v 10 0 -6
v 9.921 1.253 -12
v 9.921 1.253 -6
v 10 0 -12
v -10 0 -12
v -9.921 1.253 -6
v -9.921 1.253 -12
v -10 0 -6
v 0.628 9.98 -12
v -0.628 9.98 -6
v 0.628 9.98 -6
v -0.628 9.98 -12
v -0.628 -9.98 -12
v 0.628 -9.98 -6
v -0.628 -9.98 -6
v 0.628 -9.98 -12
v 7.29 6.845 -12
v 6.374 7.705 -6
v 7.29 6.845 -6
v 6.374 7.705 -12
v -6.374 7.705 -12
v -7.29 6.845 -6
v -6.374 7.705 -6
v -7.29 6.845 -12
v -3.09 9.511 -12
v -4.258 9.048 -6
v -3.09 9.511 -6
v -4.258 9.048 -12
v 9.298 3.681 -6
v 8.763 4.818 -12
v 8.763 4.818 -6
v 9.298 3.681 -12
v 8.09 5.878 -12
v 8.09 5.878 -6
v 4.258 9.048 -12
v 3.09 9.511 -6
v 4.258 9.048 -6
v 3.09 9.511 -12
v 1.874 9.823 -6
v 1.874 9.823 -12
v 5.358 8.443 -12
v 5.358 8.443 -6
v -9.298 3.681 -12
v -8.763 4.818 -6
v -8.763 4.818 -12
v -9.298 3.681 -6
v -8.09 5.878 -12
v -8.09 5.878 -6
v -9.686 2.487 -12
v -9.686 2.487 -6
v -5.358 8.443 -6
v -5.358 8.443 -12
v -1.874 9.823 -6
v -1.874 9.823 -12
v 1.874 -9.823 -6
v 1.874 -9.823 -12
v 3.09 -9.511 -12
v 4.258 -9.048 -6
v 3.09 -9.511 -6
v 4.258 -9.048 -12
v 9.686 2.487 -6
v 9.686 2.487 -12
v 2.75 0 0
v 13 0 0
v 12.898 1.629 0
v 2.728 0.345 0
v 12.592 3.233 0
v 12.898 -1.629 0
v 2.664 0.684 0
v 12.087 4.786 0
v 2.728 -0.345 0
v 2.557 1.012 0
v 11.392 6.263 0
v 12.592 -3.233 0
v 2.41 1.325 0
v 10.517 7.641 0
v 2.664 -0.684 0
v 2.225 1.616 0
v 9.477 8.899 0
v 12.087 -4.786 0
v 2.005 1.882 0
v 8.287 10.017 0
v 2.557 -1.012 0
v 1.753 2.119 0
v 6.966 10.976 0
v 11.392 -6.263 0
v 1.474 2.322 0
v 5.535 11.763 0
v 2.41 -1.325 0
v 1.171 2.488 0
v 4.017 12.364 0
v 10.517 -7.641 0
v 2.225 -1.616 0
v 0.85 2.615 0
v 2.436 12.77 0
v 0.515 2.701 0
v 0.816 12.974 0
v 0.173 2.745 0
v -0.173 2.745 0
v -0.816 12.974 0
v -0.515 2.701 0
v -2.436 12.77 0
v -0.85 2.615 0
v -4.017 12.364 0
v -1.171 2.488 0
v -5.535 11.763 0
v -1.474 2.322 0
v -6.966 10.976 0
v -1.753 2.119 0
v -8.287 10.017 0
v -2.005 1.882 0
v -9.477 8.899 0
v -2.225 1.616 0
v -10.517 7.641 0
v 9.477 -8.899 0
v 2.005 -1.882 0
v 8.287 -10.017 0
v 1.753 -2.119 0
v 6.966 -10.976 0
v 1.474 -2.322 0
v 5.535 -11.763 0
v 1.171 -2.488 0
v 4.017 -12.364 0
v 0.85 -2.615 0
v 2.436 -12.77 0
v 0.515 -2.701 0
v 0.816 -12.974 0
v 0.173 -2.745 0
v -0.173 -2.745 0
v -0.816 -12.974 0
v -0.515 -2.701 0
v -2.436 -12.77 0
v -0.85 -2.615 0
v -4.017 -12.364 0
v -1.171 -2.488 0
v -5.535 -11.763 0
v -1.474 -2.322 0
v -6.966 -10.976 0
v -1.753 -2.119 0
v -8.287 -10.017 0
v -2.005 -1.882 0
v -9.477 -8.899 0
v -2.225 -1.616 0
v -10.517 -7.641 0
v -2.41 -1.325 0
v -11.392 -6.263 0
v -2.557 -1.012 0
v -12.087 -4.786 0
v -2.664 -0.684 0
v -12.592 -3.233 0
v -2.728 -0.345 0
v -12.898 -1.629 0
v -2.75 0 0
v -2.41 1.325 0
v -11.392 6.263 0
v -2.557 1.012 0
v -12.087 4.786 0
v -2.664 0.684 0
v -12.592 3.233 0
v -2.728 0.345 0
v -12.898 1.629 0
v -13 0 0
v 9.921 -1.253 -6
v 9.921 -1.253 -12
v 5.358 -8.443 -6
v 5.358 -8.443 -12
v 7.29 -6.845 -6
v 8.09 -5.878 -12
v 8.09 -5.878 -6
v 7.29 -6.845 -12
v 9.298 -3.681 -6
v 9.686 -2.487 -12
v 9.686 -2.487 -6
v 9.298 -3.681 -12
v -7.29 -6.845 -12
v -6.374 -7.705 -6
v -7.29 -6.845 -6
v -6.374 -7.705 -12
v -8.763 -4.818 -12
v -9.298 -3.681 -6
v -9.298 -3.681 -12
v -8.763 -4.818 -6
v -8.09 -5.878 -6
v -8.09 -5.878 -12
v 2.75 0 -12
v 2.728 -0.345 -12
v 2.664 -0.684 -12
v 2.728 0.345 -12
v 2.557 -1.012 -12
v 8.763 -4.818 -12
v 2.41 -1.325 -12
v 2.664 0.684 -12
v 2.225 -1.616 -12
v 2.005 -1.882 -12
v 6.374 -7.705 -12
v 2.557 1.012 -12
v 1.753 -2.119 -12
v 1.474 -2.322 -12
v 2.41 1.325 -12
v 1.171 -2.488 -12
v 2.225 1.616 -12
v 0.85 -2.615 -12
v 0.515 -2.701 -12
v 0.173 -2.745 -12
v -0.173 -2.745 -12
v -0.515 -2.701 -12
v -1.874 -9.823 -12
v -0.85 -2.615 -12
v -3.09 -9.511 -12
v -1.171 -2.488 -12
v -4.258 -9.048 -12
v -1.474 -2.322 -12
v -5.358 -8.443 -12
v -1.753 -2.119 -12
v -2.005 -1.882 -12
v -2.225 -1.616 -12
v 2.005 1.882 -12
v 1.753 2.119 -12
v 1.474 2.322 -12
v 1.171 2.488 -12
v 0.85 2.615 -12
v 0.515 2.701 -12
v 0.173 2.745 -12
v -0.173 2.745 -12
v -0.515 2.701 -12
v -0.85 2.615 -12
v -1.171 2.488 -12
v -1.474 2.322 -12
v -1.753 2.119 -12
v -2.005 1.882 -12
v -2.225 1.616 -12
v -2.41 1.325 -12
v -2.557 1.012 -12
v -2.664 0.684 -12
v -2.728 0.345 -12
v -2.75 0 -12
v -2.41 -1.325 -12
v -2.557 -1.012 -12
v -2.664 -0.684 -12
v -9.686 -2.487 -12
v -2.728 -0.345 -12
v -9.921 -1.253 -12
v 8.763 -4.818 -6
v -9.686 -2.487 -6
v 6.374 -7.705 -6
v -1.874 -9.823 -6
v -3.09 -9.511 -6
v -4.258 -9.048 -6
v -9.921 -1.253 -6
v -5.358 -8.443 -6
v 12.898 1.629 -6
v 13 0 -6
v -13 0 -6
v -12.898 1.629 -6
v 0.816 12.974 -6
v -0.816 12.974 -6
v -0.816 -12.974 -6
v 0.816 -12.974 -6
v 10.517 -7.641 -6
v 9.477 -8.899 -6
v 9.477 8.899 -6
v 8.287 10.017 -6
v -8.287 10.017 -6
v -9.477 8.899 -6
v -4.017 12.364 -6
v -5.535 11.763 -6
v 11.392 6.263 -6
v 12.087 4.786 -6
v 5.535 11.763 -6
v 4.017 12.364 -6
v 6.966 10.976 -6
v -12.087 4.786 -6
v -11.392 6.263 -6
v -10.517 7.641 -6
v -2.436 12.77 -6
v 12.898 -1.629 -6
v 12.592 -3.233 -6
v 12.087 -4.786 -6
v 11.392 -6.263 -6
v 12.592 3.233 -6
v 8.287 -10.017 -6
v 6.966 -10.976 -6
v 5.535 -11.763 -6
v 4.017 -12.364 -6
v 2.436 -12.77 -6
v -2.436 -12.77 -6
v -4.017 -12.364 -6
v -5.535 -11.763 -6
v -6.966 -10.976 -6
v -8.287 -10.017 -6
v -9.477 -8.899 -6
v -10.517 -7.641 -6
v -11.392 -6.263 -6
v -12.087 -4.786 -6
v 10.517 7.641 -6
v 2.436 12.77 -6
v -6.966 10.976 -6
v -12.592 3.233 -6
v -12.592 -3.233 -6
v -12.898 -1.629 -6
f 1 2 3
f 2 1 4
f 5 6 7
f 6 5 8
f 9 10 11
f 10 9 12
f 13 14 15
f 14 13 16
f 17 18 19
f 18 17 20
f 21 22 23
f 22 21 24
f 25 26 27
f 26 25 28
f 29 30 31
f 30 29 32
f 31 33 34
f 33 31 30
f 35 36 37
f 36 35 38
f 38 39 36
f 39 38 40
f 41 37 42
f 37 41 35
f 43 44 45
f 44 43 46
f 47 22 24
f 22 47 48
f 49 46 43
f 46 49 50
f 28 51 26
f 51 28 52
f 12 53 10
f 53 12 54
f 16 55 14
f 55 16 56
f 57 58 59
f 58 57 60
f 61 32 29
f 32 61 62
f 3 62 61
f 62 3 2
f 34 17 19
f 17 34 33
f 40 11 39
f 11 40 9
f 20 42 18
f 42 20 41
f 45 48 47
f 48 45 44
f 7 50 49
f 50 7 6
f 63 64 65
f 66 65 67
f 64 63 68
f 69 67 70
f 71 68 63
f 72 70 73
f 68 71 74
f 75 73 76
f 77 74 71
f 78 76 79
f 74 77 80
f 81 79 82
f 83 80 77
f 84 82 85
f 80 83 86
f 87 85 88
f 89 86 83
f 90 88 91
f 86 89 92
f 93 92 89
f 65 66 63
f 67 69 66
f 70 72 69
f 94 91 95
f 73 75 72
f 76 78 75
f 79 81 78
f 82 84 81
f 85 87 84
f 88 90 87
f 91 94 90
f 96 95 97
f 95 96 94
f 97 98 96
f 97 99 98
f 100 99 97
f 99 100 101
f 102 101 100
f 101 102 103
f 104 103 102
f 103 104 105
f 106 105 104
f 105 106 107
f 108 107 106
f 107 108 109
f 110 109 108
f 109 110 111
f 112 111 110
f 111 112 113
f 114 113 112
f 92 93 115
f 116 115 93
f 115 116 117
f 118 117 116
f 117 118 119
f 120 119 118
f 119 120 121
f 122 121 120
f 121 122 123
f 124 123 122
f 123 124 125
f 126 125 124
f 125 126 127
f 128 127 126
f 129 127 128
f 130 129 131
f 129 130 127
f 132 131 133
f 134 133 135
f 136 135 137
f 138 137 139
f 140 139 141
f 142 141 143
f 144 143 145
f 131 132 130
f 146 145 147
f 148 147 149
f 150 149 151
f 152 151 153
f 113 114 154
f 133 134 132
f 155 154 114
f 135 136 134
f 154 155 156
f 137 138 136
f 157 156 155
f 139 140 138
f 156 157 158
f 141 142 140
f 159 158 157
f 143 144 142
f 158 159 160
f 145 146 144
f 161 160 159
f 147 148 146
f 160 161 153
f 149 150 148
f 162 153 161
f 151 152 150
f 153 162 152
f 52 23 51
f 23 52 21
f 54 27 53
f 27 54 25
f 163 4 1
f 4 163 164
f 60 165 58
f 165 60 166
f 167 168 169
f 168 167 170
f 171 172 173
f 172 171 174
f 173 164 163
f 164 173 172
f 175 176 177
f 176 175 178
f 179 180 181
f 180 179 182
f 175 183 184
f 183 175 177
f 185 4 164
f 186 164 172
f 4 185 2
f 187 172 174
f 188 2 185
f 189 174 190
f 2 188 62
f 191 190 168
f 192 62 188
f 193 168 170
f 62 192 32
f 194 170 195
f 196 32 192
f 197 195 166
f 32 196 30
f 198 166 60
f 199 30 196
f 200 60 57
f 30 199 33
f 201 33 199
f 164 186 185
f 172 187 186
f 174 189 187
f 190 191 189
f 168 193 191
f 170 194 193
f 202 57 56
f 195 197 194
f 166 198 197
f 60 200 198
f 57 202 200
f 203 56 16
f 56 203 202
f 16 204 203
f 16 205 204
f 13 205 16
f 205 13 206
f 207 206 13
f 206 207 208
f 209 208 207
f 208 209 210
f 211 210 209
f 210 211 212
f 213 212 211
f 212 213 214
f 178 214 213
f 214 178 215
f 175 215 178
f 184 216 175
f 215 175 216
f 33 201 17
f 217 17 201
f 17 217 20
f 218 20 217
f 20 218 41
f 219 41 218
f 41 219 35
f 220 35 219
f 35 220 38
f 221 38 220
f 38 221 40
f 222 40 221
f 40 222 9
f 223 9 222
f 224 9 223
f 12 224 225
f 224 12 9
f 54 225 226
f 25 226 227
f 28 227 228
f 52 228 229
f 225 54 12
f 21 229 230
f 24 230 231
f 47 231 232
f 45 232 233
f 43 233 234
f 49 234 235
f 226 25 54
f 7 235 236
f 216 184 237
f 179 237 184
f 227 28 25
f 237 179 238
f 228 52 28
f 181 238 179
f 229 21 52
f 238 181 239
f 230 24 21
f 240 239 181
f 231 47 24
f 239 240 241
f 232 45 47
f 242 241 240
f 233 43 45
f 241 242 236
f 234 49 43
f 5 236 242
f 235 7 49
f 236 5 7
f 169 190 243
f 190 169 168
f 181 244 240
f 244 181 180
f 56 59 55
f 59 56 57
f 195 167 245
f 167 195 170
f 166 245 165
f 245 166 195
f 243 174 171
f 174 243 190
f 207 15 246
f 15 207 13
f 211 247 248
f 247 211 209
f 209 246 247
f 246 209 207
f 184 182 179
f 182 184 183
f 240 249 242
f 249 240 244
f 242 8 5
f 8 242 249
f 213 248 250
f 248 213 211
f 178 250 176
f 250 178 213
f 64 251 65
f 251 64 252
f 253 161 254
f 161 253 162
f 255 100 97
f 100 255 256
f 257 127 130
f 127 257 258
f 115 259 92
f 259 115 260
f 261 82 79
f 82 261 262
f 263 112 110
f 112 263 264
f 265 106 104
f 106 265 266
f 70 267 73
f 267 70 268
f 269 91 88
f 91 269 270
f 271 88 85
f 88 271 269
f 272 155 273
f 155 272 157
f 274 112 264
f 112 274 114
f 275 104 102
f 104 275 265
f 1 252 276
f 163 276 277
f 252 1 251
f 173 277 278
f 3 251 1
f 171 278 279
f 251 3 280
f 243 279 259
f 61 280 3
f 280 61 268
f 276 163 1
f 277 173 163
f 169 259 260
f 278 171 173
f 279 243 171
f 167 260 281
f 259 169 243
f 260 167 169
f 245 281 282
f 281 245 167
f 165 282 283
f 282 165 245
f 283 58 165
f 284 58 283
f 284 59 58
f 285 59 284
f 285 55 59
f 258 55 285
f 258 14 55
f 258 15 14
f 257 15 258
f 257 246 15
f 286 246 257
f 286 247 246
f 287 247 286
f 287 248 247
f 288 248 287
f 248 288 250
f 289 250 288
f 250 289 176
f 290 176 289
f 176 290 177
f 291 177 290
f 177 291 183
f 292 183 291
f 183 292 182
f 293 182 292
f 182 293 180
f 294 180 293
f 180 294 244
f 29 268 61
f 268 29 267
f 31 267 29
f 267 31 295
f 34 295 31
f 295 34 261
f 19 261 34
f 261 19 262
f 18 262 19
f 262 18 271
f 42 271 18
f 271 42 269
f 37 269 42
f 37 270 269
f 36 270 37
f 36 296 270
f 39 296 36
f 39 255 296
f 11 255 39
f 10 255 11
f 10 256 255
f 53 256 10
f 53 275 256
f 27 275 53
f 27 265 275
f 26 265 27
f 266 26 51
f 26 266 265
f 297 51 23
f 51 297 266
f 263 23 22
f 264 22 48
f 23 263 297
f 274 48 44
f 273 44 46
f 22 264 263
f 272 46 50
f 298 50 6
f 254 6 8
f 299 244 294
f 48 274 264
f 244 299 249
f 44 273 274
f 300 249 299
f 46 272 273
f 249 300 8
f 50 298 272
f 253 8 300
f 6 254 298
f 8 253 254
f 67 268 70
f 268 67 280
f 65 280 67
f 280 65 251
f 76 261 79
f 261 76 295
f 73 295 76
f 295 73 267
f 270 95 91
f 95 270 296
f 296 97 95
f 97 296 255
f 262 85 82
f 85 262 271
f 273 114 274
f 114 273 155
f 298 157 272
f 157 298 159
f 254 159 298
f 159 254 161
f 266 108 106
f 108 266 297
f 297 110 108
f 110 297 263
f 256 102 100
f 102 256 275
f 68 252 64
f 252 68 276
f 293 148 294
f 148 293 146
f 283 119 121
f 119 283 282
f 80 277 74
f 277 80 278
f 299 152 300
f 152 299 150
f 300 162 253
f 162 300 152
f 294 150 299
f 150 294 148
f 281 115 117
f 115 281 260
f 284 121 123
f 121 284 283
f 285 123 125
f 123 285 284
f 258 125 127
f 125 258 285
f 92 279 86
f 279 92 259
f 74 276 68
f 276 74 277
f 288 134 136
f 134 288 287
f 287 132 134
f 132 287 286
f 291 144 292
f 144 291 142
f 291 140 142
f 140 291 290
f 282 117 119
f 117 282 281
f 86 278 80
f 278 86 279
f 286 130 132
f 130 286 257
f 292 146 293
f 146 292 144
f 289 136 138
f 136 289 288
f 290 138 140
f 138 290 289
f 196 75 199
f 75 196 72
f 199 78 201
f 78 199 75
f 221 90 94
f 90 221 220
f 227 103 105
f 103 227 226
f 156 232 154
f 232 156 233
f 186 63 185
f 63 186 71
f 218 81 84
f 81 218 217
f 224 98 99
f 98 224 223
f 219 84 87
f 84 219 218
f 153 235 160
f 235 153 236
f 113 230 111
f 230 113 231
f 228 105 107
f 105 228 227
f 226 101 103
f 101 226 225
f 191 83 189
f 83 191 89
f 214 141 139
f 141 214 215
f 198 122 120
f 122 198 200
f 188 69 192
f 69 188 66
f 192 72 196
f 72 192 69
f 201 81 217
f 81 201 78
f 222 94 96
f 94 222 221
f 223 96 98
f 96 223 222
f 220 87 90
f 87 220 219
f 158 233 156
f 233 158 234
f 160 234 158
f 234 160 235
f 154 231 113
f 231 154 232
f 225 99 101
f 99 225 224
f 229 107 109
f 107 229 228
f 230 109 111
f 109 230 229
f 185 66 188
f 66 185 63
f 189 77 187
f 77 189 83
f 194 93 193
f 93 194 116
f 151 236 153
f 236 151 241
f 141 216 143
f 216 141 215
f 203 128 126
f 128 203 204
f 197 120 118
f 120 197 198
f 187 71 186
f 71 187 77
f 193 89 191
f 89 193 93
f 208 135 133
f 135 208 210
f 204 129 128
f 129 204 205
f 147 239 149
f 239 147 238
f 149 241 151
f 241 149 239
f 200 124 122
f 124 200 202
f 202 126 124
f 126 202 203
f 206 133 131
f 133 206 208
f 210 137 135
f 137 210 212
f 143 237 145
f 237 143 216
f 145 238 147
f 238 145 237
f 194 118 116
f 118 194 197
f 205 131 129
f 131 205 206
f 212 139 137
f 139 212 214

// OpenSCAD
$fn = 50;


difference() {
	union() {
		translate(v = [0, 0, -12.0000000000]) {
			cylinder(h = 12, r = 10.0000000000);
		}
		translate(v = [0, 0, -6.0000000000]) {
			cylinder(h = 6, r = 13.0000000000);
		}
	}
	union() {
		#translate(v = [0, 0, -12]) {
			cylinder(h = 12, r = 2.7500000000);
		}
	}
}
